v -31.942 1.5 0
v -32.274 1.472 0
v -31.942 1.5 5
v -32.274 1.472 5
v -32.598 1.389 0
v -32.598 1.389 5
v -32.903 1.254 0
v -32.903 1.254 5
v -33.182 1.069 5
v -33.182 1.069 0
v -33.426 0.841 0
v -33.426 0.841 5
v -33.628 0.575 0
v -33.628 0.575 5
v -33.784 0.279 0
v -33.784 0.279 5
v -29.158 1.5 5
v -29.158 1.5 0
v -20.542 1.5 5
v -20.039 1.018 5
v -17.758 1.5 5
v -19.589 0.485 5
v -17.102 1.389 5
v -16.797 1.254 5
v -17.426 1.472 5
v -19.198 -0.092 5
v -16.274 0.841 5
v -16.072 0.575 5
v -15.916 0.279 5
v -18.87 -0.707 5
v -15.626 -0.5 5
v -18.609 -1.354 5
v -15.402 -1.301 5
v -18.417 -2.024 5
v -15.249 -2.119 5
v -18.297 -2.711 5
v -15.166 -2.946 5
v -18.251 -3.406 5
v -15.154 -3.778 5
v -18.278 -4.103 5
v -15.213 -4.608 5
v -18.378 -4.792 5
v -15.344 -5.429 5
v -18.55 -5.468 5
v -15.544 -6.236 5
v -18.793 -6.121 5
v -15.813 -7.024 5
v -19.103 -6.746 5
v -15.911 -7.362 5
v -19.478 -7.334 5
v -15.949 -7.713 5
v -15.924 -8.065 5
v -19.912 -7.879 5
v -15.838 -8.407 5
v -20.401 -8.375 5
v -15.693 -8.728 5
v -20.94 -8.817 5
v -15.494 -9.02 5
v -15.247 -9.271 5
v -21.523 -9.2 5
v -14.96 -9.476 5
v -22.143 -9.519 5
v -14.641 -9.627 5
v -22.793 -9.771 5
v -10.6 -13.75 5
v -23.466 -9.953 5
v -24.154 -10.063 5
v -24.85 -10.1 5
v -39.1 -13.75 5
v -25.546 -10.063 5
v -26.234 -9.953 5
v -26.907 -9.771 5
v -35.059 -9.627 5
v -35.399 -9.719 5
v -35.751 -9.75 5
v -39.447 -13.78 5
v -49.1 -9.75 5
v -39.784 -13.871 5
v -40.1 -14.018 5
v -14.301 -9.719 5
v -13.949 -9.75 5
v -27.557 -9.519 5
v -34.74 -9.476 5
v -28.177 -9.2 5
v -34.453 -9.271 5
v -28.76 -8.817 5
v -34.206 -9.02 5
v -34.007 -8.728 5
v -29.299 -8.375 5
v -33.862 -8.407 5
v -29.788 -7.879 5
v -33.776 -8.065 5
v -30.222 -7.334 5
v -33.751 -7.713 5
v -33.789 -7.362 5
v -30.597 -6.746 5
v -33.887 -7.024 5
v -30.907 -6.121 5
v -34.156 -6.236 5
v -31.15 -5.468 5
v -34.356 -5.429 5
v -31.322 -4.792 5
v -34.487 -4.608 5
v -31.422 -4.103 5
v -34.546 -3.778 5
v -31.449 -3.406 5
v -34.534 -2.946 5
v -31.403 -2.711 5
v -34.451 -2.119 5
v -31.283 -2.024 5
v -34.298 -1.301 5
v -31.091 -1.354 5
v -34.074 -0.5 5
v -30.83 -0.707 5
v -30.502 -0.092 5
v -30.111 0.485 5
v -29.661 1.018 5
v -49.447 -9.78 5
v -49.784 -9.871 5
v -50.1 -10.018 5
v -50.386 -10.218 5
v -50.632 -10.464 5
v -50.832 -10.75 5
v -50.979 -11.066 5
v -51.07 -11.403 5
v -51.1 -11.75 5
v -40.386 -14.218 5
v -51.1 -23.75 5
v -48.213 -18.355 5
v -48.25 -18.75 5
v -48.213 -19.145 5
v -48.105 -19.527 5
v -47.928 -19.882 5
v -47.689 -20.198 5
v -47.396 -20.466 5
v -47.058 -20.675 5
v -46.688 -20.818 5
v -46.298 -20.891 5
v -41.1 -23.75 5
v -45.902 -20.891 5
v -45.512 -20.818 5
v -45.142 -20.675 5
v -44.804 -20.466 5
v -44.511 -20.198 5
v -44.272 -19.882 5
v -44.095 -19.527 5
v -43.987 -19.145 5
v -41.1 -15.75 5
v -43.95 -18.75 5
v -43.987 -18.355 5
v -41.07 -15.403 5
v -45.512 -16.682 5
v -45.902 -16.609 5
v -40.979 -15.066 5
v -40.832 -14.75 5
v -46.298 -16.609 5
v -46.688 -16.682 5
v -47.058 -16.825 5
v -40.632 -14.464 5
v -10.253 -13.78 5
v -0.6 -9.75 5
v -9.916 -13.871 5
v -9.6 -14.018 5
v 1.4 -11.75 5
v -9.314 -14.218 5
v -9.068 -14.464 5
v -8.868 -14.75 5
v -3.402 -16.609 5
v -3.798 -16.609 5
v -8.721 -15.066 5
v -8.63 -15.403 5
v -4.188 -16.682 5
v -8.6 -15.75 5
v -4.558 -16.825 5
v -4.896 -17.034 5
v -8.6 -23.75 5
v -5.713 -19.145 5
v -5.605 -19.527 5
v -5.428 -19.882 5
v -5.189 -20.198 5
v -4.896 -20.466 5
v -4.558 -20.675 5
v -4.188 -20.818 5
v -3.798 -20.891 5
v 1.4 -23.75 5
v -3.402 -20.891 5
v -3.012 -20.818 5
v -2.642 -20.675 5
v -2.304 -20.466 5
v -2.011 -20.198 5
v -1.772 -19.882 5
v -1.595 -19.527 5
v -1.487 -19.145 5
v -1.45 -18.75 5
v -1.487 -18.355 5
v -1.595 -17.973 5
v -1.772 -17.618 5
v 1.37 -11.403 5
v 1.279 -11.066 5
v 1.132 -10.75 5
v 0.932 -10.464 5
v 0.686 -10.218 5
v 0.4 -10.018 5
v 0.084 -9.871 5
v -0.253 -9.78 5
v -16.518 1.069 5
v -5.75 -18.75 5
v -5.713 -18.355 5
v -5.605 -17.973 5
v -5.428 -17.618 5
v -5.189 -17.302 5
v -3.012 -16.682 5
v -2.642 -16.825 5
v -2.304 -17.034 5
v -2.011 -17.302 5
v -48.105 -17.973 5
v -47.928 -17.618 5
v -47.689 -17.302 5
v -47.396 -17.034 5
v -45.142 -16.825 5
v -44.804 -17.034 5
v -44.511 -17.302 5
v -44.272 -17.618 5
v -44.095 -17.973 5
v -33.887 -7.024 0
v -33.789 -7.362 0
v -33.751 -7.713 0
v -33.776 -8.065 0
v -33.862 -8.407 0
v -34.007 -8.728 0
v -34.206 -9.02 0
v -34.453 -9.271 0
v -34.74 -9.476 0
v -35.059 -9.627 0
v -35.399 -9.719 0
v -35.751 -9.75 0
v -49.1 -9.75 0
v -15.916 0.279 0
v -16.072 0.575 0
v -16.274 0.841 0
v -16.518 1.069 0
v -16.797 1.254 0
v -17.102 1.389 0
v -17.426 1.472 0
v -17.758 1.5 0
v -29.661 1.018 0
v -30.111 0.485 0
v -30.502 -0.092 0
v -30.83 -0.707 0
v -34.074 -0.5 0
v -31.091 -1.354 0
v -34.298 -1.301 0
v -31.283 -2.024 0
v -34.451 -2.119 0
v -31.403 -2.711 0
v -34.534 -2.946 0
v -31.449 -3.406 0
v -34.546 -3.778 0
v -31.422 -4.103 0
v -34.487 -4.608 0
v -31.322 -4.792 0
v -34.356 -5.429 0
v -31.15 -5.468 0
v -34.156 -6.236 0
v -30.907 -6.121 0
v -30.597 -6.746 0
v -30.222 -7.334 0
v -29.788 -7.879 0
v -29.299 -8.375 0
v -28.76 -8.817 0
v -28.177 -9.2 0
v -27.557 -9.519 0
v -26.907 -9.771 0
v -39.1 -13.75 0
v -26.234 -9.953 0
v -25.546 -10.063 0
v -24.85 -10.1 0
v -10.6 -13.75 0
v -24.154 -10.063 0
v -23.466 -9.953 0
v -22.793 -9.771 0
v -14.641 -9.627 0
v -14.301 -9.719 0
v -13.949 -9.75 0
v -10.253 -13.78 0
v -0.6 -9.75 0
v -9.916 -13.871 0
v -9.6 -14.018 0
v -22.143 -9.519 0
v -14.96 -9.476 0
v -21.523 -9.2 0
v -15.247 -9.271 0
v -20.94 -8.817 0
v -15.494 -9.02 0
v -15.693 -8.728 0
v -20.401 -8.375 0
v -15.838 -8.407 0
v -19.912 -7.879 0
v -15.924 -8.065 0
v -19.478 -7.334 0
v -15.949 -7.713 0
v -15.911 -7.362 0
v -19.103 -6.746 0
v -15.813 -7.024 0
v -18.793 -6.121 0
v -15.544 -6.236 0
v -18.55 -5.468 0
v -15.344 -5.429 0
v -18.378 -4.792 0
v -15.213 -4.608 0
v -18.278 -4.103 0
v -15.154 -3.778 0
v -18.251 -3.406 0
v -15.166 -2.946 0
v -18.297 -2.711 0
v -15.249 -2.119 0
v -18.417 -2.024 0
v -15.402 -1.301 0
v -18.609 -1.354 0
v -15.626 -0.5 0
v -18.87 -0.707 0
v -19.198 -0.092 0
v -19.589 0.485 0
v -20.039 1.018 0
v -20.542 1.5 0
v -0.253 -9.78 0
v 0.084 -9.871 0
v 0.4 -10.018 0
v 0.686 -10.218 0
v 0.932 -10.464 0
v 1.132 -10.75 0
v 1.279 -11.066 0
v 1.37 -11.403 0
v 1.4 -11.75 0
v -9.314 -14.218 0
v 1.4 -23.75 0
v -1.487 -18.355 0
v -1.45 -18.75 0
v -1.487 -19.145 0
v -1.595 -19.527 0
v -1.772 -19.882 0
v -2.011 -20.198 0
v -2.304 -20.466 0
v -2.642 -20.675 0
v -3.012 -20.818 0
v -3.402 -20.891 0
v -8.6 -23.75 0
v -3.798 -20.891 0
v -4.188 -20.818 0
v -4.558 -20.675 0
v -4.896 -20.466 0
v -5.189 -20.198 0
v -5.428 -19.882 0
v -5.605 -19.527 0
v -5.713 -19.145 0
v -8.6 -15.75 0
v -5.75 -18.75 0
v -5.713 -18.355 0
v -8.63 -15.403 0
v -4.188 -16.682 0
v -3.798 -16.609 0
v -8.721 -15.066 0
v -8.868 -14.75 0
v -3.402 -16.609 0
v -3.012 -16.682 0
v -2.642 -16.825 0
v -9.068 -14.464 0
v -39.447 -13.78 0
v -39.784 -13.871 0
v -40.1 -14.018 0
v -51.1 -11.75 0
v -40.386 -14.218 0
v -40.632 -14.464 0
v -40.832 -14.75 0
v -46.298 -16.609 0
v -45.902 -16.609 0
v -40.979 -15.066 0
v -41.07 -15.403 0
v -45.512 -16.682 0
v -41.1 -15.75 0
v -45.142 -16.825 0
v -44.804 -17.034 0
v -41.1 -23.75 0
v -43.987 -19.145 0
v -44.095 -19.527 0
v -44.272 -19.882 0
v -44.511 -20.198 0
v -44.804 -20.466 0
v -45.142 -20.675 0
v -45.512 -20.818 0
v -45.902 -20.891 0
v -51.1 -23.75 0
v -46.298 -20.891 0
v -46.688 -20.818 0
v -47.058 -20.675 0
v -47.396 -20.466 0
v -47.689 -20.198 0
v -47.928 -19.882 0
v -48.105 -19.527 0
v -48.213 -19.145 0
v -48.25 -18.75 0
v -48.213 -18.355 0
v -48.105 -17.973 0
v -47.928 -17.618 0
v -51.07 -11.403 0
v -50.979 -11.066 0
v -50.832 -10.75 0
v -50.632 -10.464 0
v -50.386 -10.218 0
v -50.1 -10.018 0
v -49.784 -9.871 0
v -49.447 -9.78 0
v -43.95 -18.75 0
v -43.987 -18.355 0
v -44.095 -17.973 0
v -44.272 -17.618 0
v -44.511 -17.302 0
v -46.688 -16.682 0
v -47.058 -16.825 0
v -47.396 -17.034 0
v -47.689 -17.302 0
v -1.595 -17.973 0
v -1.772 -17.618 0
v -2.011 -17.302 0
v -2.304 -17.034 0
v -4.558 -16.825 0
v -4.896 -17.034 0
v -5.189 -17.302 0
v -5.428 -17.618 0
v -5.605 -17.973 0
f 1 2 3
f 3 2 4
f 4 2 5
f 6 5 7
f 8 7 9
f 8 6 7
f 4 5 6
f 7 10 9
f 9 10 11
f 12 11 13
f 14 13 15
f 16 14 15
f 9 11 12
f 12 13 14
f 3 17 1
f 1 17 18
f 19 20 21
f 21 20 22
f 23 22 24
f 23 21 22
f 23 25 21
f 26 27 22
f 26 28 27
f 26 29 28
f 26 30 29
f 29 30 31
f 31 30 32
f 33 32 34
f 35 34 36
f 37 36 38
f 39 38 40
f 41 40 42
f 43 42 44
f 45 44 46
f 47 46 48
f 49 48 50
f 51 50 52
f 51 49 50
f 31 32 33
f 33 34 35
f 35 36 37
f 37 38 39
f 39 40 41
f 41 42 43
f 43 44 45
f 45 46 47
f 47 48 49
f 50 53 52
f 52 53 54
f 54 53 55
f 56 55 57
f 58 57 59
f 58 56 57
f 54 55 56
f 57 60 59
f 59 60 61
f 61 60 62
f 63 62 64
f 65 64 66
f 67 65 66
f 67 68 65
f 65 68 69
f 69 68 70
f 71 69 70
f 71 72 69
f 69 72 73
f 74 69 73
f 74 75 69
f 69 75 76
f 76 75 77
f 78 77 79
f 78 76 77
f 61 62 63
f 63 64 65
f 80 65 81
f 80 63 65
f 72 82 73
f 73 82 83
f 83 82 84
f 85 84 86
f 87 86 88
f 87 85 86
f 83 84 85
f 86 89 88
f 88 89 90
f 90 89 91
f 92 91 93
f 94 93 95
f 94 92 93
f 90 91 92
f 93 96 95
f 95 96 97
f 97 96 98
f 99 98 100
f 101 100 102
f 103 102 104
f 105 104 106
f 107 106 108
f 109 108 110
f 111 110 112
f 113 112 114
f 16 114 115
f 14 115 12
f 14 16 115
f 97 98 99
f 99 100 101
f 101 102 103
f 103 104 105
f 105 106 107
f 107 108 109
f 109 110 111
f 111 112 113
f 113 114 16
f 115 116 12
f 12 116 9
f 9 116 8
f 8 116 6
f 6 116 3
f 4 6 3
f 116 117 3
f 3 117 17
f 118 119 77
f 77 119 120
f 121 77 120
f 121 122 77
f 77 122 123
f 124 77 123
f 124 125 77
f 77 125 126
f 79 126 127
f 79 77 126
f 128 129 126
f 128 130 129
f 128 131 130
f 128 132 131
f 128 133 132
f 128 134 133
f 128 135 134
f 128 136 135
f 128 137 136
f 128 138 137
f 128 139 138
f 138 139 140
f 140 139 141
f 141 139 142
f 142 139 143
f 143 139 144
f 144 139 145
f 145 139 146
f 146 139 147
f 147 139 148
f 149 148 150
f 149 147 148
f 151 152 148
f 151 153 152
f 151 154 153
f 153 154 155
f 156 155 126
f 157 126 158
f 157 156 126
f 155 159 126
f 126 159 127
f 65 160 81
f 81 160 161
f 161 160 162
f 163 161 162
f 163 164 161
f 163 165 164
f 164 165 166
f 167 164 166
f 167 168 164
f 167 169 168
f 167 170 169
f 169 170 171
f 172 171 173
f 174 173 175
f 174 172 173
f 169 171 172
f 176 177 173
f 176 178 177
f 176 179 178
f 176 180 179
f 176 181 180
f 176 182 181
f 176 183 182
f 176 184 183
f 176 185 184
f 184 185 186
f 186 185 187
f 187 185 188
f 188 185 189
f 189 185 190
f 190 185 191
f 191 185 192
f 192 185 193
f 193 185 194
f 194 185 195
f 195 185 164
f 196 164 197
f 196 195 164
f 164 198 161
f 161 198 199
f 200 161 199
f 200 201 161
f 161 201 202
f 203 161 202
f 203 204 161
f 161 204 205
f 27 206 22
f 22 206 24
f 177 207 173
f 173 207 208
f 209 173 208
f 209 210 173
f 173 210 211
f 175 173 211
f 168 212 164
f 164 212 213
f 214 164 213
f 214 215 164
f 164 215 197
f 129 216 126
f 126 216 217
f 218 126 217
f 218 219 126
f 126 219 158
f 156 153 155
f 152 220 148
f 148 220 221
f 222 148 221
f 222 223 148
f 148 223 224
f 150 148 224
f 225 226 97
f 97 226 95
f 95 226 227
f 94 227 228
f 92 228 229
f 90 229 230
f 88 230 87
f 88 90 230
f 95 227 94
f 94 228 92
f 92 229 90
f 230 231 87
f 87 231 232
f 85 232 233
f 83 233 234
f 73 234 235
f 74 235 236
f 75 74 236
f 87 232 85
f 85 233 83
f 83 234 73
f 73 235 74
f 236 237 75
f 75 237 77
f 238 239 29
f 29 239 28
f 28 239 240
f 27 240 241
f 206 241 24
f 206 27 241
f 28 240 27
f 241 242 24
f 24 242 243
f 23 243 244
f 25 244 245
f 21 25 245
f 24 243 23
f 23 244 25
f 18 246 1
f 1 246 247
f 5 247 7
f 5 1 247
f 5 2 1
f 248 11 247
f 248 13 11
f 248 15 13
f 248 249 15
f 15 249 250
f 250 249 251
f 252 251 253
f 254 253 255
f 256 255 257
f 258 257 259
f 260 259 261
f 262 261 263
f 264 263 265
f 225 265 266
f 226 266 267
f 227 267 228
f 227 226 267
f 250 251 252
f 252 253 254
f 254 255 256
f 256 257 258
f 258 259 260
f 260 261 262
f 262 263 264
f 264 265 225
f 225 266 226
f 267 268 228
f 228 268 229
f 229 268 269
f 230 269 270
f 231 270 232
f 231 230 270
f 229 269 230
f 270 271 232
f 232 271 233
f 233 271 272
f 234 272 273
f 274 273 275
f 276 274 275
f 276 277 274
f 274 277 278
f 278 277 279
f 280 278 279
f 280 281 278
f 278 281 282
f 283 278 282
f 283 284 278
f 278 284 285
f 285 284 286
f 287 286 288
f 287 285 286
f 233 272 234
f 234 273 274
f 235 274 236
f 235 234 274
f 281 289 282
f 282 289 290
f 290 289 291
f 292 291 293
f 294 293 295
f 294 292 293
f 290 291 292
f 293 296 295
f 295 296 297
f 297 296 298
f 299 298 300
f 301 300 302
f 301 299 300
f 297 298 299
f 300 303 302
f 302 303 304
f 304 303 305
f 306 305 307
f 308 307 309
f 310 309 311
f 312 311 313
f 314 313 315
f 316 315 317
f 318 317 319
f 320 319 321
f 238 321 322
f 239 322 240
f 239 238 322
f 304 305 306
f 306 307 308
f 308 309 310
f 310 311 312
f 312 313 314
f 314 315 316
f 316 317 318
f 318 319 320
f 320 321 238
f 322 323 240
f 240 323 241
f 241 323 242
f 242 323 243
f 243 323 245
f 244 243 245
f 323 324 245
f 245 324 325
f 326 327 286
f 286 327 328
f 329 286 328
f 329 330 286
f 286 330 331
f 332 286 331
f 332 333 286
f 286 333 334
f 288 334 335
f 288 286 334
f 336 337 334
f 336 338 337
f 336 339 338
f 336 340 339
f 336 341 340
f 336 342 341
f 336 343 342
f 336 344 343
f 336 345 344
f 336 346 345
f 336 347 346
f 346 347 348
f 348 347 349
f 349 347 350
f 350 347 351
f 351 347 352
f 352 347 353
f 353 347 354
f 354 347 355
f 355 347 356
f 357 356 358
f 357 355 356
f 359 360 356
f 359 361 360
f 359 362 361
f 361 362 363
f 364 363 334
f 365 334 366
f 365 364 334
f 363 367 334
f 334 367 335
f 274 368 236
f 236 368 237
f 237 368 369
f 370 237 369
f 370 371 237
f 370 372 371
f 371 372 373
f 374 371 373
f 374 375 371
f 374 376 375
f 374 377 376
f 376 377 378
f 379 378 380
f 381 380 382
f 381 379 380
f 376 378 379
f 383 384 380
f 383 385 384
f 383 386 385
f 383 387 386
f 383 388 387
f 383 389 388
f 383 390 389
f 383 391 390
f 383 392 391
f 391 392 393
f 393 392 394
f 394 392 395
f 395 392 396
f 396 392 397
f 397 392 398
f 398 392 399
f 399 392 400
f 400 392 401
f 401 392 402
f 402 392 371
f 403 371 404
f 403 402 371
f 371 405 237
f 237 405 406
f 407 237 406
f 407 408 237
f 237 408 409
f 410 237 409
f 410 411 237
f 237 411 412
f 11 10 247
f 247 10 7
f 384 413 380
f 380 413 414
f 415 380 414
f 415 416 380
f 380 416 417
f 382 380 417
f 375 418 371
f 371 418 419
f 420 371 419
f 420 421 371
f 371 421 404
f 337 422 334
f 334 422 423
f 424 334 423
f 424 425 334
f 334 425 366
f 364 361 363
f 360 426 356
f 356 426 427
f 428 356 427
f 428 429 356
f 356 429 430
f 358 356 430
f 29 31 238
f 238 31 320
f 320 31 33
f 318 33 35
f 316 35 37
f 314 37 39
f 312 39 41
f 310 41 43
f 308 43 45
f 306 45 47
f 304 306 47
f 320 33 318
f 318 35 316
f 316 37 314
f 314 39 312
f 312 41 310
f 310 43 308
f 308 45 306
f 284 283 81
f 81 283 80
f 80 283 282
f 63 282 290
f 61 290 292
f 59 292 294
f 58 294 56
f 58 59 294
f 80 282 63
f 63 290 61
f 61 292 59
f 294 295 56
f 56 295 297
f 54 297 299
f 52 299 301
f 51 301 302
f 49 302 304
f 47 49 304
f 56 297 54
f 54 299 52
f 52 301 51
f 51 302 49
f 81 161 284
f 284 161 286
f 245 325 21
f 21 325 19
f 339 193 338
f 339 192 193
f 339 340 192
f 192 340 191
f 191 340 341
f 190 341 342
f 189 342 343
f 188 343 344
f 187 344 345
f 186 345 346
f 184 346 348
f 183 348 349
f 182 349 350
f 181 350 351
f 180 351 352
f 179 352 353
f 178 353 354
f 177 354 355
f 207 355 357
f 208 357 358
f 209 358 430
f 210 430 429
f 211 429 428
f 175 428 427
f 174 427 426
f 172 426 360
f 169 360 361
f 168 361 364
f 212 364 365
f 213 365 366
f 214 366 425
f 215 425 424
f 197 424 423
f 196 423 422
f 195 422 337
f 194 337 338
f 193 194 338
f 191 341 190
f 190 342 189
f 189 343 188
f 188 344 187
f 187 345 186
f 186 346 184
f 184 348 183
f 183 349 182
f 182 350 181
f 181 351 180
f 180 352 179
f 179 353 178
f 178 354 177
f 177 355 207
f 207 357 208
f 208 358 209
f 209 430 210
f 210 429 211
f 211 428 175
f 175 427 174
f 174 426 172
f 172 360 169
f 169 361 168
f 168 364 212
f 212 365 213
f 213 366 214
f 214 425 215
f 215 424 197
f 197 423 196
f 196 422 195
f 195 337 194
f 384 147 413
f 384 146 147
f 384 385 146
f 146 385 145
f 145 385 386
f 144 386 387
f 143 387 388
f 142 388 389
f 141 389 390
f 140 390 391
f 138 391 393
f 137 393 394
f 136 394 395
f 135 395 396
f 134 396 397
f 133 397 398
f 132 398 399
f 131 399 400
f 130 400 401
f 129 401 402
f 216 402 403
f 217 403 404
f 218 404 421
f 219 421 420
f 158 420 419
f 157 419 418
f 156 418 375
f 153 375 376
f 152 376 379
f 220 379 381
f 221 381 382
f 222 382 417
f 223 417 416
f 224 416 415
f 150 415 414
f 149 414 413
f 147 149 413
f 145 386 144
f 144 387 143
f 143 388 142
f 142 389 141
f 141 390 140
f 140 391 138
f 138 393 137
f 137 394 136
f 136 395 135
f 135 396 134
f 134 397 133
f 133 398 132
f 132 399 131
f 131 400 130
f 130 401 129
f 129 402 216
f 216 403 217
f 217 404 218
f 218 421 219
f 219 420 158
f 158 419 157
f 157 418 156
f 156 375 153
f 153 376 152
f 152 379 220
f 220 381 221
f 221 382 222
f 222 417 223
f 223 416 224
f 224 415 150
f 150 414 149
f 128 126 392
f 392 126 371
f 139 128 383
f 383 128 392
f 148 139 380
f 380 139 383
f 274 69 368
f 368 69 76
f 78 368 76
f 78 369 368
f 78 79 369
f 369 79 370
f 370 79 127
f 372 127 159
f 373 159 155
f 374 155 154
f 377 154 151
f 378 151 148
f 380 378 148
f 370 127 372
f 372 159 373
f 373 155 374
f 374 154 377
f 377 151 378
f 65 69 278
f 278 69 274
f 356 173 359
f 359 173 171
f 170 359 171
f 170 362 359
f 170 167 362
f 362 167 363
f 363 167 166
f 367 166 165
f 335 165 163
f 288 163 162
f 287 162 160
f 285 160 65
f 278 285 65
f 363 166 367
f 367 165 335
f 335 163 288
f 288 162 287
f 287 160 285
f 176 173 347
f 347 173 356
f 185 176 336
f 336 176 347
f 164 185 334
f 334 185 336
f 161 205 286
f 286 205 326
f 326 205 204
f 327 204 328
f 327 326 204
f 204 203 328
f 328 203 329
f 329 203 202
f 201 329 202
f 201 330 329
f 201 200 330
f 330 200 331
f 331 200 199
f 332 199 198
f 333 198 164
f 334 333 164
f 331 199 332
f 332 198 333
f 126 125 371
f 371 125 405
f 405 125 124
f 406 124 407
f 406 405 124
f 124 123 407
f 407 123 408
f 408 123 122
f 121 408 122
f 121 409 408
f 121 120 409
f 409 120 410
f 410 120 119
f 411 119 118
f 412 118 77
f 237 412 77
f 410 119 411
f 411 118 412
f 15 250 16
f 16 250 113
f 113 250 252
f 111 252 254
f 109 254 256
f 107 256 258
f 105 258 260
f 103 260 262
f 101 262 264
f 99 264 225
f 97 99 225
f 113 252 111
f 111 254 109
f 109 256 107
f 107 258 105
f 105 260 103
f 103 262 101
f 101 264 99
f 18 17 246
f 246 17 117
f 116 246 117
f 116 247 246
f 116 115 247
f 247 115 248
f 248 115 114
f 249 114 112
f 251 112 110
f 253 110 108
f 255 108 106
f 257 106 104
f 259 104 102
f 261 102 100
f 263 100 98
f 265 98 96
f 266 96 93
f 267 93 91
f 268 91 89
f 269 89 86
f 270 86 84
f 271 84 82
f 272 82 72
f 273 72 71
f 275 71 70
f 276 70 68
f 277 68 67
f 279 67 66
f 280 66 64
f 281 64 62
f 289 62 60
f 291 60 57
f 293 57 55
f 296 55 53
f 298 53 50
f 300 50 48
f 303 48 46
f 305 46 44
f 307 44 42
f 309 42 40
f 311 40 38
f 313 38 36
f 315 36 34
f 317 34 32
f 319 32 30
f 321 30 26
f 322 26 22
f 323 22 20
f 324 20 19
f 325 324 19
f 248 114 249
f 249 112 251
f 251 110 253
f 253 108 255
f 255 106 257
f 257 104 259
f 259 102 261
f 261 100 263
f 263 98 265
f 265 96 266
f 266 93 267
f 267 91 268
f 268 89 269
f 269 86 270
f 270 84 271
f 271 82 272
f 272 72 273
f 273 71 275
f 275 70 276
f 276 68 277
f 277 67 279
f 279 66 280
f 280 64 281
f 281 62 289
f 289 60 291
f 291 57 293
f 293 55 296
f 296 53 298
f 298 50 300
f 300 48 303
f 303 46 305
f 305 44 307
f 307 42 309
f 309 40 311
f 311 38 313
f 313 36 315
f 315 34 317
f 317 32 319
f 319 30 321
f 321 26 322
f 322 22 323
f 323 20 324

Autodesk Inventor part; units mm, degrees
ref_plane "YZ Plane" through (0, 0, 0) normal (1, 0, 0) x (0, 1, 0)
ref_plane "XZ Plane" through (0, 0, 0) normal (0, 1, 0) x (-1, 0, 0)
ref_plane "Work Plane5" through (-24.85, -3.5, 5) normal (0, 0, 1) x (1, 0, 0)
sketch "Sketch16" plane through (-24.85, -3.5, 5) normal (0, 0, 1) x (1, 0, 0)
  circle A0 centre (0, 0) radius 6.5 construction
  arc A1 (-8.312, 5) -> (8.312, 5) centre (0, 0) ccw
  line L0 (9.7, 0) -> (-9.7, 0) construction
  line L1 (8.312, 5) -> (-8.312, 5)
  arc A2 (-4.3933, 4.9254) -> (4.3933, 4.9254) centre (0, 0) ccw
  arc A3 (-4.3081, 5) -> (4.3081, 5) centre (0, 0) ccw
  point P0 (24.85, 3.5)
  point P1 (4.4598, 5)
  point P2 (-4.4598, 5)
  dimension "d45" = 5
extrude "Extrusion16" add sketch "Sketch16" against normal blind 5 contours L1 A3 A2 A1
sketch "Sketch17" plane through (-24.85, -3.5, 5) normal (0, 0, 1) x (1, 0, 0)
  circle A0 centre (-21.25, -15.25) radius 2.15 projected
  circle A1 centre (21.25, -15.25) radius 2.15 projected
  arc A2 (-24.25, -6.25) -> (-26.25, -8.25) centre (-24.25, -8.25) ccw projected
  line L0 (-23.35, -6.25) -> (-24.25, -6.25) projected
  arc A3 (-23.35, -6.25) -> (-21.35, -4.25) centre (-23.35, -4.25) ccw projected
  line L1 (-21.35, -0.6245) -> (-21.35, -4.25) projected
  arc A4 (-21.35, -0.6245) -> (-21.35, 0.6245) centre (-19.45, 0) ccw projected
  line L2 (-21.35, 4.25) -> (-21.35, 0.6245) projected
  arc A5 (-19.35, 6.25) -> (-21.35, 4.25) centre (-19.35, 4.25) ccw projected
  line L3 (-19.35, 6.25) -> (-16.95, 6.25) projected
  line L4 (-16.95, 6.25) -> (-16.95, -6.25) projected
  line L5 (-16.95, -6.25) -> (6.65, -6.25) projected
  line L6 (6.65, -6.25) -> (6.65, 6.25) projected
  line L7 (6.65, 6.25) -> (9.05, 6.25) projected
  arc A6 (11.05, 4.25) -> (9.05, 6.25) centre (9.05, 4.25) ccw projected
  line L8 (11.05, 4.25) -> (11.05, 0.6245) projected
  arc A7 (11.05, 0.6245) -> (11.05, -0.6245) centre (9.15, 0) ccw projected
  line L9 (11.05, -0.6245) -> (11.05, -4.25) projected
  arc A8 (11.05, -4.25) -> (13.05, -6.25) centre (13.05, -4.25) ccw projected
  line L10 (13.05, -6.25) -> (24.25, -6.25) projected
  arc A9 (26.25, -8.25) -> (24.25, -6.25) centre (24.25, -8.25) ccw projected
  line L11 (26.25, -8.25) -> (26.25, -20.25) projected
  arc A10 (16.25, -12.25) -> (14.25, -10.25) centre (14.25, -12.25) ccw projected
  line L12 (14.25, -10.25) -> (-14.25, -10.25) projected
  arc A11 (-14.25, -10.25) -> (-16.25, -12.25) centre (-14.25, -12.25) ccw projected
  line L13 (-26.25, -20.25) -> (-26.25, -8.25) projected
  line L14 (-16.25, -12.25) -> (-16.25, -20.25) projected
  line L15 (-26.25, -20.25) -> (-16.25, -20.25) projected
  line L16 (16.25, -20.25) -> (26.25, -20.25) projected
  line L17 (16.25, -12.25) -> (16.25, -20.25) projected
  point P0 (24.85, 3.5)
extrude "Extrusion17" add sketch "Sketch17" against normal blind 5
sketch "Sketch18" plane through (-24.85, -3.5, 0) normal (0, 0, -1) x (-1, 0, 0)
  line L0 (16.95, -6.25) -> (7.4181, -6.25) projected
  line L1 (14.25, -6.25) -> (26.25, -6.25)
  line L2 (26.25, -6.25) -> (26.25, 6.25)
  line L3 (26.25, 6.25) -> (14.25, 6.25)
  line L4 (14.25, 6.25) -> (14.25, -6.25)
  point P0 (-24.85, 3.5)
extrude "Extrusion18" cut sketch "Sketch18" against normal blind 5
sketch "Sketch19" plane through (-24.85, -3.5, 0) normal (0, 0, -1) x (-1, 0, 0)
  line L0 (-4.4598, 5) -> (-15.1519, 5)
  line L1 (-15.1519, 5) -> (-15.1519, 7.7901)
  line L2 (-15.1519, 7.7901) -> (-4.4598, 7.7901)
  line L3 (-4.4598, 7.7901) -> (-4.4598, 5)
  point P0 (-24.85, 3.5)
extrude "Extrusion19" cut sketch "Sketch19" against normal blind 5
sketch "Sketch20" plane through (-24.85, -3.5, 0) normal (0, 0, -1) x (-1, 0, 0)
  line L0 (-4.3081, 5) -> (-10.904, 5) projected
  arc A0 (-13.05, -6.25) -> (-11.05, -4.25) centre (-13.05, -4.25) ccw projected
  line L1 (-14.25, -10.25) -> (14.25, -10.25) projected
  line L2 (24.25, -6.25) -> (7.4181, -6.25) projected
  line L3 (8.312, 5) -> (4.3081, 5) projected
  line L4 (-6.65, -0.817) -> (-6.65, 0.817) projected
  arc A1 (-4.4598, 5) -> (-6.65, 0.817) centre (0, 0) ccw projected
  line L5 (-7.14, 5) -> (-12.1327, 5)
  line L6 (-13.05, -6.25) -> (-7.4181, -6.25)
  arc A2 (-8.1939, -10.25) -> (11.5386, -6.25) centre (0, 0) ccw
  arc A3 (-12.1327, 5) -> (-11.5386, -6.25) centre (0, 0) ccw
  arc A4 (7.4181, -6.25) -> (8.312, 5) centre (0, 0) ccw
  arc A5 (-8.312, 5) -> (-7.4181, -6.25) centre (0, 0) ccw
  point P0 (4.4598, 5)
  point P1 (-24.85, 3.5)
extrude "Extrusion20" cut sketch "Sketch20" against normal blind 5 contours A5 L6 A3 L5 L0
sketch "Sketch21" plane through (-24.85, -3.5, 0) normal (0, 0, -1) x (-1, 0, 0)
  line L0 (-13.05, -6.25) -> (-24.25, -6.25) projected
  line L1 (-15.1128, -6.25) -> (-9.6695, -6.25)
  line L2 (-9.6695, -6.25) -> (-9.6695, -4.6771)
  line L3 (-9.6695, -4.6771) -> (-15.1128, -4.6771)
  line L4 (-15.1128, -4.6771) -> (-15.1128, -6.25)
  point P0 (-24.85, 3.5)
extrude "Extrusion21" cut sketch "Sketch21" against normal blind 5
fillet "Fillet2" radius 2 4 edges at (-17.4319, -9.75, 2.5) (-33.162, 1.5, 2.5) (-16.538, 1.5, 2.5) (-32.2681, -9.75, 2.5)
sketch "Sketch22" plane through (-24.85, -3.5, 0) normal (0, 0, -1) x (-1, 0, 0)
  line L0 (7.0915, 5) -> (4.3081, 5) projected
  line L1 (2.1207, -6.25) -> (-2.1207, -6.25) projected
  line L2 (-6.65, -0.817) -> (-6.65, 0.817) projected
  line L3 (-2.414, -6.25) -> (2.414, -6.25)
  arc A0 (-4.3081, 5) -> (-2.1207, -6.25) centre (0, 0) ccw construction
  arc A1 (2.1207, -6.25) -> (4.3081, 5) centre (0, 0) ccw construction
  arc A2 (-2.1207, -6.25) -> (2.1207, -6.25) centre (0, 0) ccw
  point P0 (4.4598, 5)
  point P1 (-24.85, 3.5)
extrude "Extrusion23" cut sketch "Sketch22" against normal blind 5
properties part number "BearingSupport"
